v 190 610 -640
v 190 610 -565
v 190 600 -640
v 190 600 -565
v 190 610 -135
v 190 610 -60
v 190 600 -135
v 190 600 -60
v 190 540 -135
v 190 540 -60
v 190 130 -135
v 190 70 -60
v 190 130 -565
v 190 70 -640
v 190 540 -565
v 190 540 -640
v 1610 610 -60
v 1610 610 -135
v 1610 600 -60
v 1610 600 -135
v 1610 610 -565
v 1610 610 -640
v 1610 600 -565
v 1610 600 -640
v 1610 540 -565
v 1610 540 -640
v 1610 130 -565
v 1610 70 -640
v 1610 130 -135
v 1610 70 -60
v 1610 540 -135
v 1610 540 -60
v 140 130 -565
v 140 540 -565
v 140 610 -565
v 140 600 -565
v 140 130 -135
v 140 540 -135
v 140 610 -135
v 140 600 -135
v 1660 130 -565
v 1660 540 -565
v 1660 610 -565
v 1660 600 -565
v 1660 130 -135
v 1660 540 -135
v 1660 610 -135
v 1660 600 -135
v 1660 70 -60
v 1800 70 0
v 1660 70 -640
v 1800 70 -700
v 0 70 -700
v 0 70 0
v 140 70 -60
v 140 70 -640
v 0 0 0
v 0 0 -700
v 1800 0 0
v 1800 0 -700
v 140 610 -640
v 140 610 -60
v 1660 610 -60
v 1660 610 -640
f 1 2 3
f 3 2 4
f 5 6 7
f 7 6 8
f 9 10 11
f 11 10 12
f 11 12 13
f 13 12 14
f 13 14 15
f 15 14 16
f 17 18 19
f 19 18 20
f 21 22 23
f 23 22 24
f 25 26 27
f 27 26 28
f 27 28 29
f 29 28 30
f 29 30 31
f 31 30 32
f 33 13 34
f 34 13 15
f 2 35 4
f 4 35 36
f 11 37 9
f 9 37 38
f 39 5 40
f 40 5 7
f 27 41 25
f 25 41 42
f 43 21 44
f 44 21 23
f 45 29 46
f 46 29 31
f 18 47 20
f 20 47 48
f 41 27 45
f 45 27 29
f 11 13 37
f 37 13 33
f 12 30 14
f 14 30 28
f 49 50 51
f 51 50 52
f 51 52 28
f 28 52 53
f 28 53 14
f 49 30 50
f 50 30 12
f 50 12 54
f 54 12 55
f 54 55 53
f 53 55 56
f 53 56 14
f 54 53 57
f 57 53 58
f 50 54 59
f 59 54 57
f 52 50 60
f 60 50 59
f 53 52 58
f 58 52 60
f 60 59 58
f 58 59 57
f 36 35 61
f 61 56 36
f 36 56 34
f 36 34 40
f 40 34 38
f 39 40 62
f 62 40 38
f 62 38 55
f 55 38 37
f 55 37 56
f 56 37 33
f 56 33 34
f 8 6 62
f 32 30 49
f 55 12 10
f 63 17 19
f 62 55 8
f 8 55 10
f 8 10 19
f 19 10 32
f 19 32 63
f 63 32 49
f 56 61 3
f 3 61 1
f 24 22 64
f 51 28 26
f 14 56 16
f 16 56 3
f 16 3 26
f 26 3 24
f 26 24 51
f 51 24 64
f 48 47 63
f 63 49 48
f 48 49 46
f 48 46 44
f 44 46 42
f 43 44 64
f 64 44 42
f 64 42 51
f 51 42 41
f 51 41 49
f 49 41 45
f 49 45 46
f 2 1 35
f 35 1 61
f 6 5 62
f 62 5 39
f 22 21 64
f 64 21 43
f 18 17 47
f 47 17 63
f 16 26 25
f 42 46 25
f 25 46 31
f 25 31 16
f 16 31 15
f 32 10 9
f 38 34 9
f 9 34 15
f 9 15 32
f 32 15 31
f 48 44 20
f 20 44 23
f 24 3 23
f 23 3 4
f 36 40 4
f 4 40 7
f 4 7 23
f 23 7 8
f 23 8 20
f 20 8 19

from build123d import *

# Parameters (mm, degrees)
SKETCH_1_W      = 1800
SKETCH_1_H      = 700
EXTRUDE_1_DEPTH = 70
SKETCH_2_W      = 50
SKETCH_2_H      = 580
EXTRUDE_2_DEPTH = 60
SKETCH_3_W      = 50
SKETCH_3_H      = 75
EXTRUDE_3_DEPTH = 480
EXTRUDE_4_REACH = 1984.757
SKETCH_4_W      = 50
SKETCH_4_H      = 60
EXTRUDE_5_REACH = 1860.548
SKETCH_5_W      = 580
SKETCH_5_H      = 60


with BuildPart() as part:
    # ｽｹｯﾁ1 → ﾎﾞｽ - 押し出し1 (new body)
    with BuildSketch(Plane(origin=(0, 0, 0), x_dir=(1, 0, 0), z_dir=(0, 1, 0))):
        with Locations((900, 350)):
            Rectangle(SKETCH_1_W, SKETCH_1_H)
    extrude(amount=EXTRUDE_1_DEPTH)

    # ｽｹｯﾁ2 → ﾎﾞｽ - 押し出し2 (add)
    with BuildSketch(Plane(origin=(0, 70, 0), x_dir=(1, 0, 0), z_dir=(0, 1, 0))):
        with Locations((165, 350)):
            Rectangle(SKETCH_2_W, SKETCH_2_H)
        with Locations((1635, 350)):
            Rectangle(SKETCH_2_W, SKETCH_2_H)
    extrude(amount=EXTRUDE_2_DEPTH)

    # ｽｹｯﾁ3 → ﾎﾞｽ - 押し出し3 (add)
    with BuildSketch(Plane(origin=(0, 130, 0), x_dir=(1, 0, 0), z_dir=(0, 1, 0))):
        with Locations((165, 602.5)):
            Rectangle(SKETCH_3_W, SKETCH_3_H)
        with Locations((165, 97.5)):
            Rectangle(SKETCH_3_W, SKETCH_3_H)
        with Locations((1635, 602.5)):
            Rectangle(SKETCH_3_W, SKETCH_3_H)
        with Locations((1635, 97.5)):
            Rectangle(SKETCH_3_W, SKETCH_3_H)
    extrude(amount=EXTRUDE_3_DEPTH)

    # ｽｹｯﾁ4 → ﾎﾞｽ - 押し出し4 (add, up to next)
    with BuildSketch(Plane.XY.offset(-565), mode=Mode.PRIVATE) as extrude_4_sk1:
        with Locations((1635, 570)):
            Rectangle(SKETCH_4_W, SKETCH_4_H)
    extrude_4_tool1 = extrude(extrude_4_sk1.sketch, amount=EXTRUDE_4_REACH, mode=Mode.PRIVATE) - part.part
    # ｽｹｯﾁ4 → ﾎﾞｽ - 押し出し4 (add, up to next)
    with BuildSketch(Plane.XY.offset(-565), mode=Mode.PRIVATE) as extrude_4_sk2:
        with Locations((165, 570)):
            Rectangle(SKETCH_4_W, SKETCH_4_H)
    extrude_4_tool2 = extrude(extrude_4_sk2.sketch, amount=EXTRUDE_4_REACH, mode=Mode.PRIVATE) - part.part
    add(extrude_4_tool1.solids().sort_by_distance((1635, 570, -565))[0])
    add(extrude_4_tool2.solids().sort_by_distance((165, 570, -565))[0])

    # ｽｹｯﾁ5 → ﾎﾞｽ - 押し出し5 (add, up to next)
    with BuildSketch(Plane.ZY.offset(-1610), mode=Mode.PRIVATE) as extrude_5_sk1:
        with Locations((-350, 570)):
            Rectangle(SKETCH_5_W, SKETCH_5_H)
    extrude_5_tool1 = extrude(extrude_5_sk1.sketch, amount=EXTRUDE_5_REACH, mode=Mode.PRIVATE) - part.part
    add(extrude_5_tool1.solids().sort_by_distance((1610, 570, -350))[0])


solid = part.part
